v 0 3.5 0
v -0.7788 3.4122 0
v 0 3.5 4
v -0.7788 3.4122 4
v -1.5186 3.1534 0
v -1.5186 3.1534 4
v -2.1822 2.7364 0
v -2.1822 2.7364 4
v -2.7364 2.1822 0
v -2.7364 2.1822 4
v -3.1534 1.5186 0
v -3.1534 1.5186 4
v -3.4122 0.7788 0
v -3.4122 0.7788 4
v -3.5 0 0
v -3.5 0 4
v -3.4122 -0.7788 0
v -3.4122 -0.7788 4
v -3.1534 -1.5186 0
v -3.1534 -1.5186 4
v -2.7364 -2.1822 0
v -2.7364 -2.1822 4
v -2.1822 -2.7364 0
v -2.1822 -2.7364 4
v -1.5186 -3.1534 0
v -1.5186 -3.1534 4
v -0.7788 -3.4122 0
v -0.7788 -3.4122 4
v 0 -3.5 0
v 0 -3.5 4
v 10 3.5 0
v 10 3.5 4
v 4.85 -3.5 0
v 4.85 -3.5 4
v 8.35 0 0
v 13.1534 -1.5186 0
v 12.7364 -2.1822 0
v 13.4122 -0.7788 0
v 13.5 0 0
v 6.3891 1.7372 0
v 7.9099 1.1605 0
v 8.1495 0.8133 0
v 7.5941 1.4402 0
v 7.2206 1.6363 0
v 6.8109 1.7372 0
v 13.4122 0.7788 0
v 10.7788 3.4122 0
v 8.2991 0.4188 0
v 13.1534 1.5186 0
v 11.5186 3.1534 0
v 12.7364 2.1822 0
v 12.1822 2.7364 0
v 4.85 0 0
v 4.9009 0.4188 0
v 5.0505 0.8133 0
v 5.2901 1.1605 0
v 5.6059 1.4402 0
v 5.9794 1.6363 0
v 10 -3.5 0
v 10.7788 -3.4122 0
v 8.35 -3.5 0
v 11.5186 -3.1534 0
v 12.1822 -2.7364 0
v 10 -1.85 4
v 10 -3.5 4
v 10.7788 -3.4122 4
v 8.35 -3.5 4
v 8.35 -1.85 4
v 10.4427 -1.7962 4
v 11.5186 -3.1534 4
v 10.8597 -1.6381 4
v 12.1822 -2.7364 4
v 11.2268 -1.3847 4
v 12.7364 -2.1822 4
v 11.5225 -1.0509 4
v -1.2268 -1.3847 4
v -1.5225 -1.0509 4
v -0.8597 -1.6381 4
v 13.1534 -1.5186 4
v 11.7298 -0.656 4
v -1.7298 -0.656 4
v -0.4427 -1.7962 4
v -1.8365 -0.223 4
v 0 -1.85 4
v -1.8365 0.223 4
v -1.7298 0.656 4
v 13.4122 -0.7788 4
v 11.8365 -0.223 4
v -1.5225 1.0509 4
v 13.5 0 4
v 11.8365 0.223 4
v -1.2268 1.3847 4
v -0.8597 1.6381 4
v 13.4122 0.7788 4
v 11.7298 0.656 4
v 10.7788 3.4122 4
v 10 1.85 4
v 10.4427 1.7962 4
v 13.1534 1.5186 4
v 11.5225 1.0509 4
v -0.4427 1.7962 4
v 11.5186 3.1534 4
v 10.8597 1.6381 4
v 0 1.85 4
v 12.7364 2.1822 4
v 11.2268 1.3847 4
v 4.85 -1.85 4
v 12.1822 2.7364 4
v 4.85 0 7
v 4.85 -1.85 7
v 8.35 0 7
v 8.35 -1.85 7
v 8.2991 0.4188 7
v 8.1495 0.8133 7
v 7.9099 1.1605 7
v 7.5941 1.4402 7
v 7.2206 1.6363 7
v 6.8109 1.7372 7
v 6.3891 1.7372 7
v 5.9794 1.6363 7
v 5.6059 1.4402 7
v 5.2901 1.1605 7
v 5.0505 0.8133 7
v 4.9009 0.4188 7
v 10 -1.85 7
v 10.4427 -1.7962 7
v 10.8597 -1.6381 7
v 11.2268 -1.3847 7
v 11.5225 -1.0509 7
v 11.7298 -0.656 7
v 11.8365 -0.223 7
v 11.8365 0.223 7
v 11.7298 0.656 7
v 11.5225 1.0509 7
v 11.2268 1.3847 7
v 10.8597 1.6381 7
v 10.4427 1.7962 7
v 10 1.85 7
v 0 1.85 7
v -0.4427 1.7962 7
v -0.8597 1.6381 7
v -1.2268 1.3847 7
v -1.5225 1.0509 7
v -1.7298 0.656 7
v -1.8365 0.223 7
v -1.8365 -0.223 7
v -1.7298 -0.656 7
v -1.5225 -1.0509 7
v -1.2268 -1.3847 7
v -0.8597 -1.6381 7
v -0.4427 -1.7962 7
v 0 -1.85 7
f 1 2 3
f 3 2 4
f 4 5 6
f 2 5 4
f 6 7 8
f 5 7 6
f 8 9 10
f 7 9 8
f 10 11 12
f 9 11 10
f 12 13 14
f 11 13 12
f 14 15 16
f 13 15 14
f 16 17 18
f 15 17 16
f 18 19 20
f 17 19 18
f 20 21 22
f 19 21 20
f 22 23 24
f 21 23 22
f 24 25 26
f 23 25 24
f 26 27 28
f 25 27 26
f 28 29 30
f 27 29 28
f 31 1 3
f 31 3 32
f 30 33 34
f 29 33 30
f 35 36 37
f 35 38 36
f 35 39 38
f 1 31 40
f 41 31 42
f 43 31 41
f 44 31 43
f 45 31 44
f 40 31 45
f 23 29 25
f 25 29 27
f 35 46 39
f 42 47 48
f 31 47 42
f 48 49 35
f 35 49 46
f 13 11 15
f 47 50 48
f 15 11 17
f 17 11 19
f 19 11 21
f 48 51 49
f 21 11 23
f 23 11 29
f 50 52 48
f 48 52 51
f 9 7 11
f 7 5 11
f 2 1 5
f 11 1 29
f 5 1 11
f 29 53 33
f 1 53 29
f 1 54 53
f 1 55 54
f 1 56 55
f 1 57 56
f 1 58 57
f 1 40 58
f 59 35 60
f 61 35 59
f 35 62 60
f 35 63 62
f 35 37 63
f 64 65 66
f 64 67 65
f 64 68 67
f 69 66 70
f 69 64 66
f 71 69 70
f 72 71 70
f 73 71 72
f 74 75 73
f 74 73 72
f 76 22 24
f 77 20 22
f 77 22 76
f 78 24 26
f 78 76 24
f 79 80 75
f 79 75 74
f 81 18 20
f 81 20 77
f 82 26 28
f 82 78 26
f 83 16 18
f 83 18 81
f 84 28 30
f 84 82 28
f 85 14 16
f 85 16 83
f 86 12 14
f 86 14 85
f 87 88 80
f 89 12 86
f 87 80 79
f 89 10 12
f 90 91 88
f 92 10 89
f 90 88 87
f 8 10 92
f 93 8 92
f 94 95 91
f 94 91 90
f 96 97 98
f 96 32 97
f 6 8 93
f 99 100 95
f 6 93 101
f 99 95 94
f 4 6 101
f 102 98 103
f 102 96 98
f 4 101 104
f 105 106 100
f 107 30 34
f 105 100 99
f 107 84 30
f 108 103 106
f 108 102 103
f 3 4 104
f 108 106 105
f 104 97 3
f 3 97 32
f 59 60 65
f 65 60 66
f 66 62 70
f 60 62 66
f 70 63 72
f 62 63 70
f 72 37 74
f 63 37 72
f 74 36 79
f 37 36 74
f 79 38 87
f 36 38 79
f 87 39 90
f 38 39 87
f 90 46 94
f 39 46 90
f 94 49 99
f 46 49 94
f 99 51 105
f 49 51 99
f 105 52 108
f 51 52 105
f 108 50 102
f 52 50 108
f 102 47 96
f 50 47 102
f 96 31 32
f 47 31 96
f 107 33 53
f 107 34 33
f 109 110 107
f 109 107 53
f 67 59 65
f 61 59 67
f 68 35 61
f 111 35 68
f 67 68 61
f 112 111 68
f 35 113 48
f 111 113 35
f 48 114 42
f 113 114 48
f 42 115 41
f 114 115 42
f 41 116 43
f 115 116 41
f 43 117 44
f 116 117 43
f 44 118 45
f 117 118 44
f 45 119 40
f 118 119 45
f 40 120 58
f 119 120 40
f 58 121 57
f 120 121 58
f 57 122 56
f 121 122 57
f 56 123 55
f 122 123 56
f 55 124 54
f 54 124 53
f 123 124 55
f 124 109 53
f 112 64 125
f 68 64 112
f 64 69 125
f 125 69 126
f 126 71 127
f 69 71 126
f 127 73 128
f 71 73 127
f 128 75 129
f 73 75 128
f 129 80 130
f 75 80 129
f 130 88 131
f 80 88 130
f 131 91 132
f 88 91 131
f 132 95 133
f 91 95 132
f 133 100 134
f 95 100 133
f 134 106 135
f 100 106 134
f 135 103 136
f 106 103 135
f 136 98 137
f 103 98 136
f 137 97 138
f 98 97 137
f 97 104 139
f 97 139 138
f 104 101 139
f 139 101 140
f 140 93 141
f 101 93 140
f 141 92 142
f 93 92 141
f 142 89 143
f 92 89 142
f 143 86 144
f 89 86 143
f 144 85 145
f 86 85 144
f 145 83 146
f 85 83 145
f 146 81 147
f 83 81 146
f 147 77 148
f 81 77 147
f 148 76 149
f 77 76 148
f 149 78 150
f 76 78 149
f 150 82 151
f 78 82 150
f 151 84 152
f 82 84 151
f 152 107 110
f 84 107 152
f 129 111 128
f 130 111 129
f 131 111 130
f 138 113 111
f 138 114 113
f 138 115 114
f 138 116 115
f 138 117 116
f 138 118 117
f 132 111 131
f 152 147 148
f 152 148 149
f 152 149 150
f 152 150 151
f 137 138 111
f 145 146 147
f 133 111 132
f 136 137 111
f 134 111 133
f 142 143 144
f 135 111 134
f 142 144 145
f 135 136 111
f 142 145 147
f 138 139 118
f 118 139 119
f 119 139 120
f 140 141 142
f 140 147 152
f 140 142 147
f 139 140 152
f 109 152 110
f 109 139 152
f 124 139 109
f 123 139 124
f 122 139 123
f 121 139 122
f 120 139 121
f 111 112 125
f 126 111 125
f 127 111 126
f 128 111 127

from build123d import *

# Parameters (mm, degrees)
PAD_DEPTH    = 4
PAD001_DEPTH = 3
POCKET_DEPTH = 7.001


with BuildPart() as part:
    # Sketch → Pad (new body)
    with BuildSketch(Plane.XY):
        with BuildLine():
            ThreePointArc((0, 3.5), (-3.5, 0), (0, -3.5))
            Line((0, -3.5), (10, -3.5))
            ThreePointArc((10, -3.5), (13.5, 0), (10, 3.5))
            Line((0, 3.5), (10, 3.5))
        make_face()
    extrude(amount=PAD_DEPTH)

    # Sketch001 (on Face6 of Pad) → Pad001 (join)
    with BuildSketch(Plane.XY.offset(4)):
        with BuildLine():
            ThreePointArc((0, 1.85), (-1.85, 0), (0, -1.85))
            Line((0, -1.85), (10, -1.85))
            ThreePointArc((10, -1.85), (11.85, 0), (10, 1.85))
            Line((0, 1.85), (10, 1.85))
        make_face()
    extrude(amount=PAD001_DEPTH)

    # Sketch002 (on Face11 of Pad001) → Pocket (cut, through all)
    with BuildSketch(Plane.XY.offset(7)):
        with BuildLine():
            ThreePointArc((8.35, 0), (6.6, 1.75), (4.85, 0))
            Line((4.85, -3.5), (4.85, 0))
            Line((8.35, -3.5), (4.85, -3.5))
            Line((8.35, 0), (8.35, -3.5))
        make_face()
    extrude(amount=-POCKET_DEPTH, mode=Mode.SUBTRACT)


solid = part.part
